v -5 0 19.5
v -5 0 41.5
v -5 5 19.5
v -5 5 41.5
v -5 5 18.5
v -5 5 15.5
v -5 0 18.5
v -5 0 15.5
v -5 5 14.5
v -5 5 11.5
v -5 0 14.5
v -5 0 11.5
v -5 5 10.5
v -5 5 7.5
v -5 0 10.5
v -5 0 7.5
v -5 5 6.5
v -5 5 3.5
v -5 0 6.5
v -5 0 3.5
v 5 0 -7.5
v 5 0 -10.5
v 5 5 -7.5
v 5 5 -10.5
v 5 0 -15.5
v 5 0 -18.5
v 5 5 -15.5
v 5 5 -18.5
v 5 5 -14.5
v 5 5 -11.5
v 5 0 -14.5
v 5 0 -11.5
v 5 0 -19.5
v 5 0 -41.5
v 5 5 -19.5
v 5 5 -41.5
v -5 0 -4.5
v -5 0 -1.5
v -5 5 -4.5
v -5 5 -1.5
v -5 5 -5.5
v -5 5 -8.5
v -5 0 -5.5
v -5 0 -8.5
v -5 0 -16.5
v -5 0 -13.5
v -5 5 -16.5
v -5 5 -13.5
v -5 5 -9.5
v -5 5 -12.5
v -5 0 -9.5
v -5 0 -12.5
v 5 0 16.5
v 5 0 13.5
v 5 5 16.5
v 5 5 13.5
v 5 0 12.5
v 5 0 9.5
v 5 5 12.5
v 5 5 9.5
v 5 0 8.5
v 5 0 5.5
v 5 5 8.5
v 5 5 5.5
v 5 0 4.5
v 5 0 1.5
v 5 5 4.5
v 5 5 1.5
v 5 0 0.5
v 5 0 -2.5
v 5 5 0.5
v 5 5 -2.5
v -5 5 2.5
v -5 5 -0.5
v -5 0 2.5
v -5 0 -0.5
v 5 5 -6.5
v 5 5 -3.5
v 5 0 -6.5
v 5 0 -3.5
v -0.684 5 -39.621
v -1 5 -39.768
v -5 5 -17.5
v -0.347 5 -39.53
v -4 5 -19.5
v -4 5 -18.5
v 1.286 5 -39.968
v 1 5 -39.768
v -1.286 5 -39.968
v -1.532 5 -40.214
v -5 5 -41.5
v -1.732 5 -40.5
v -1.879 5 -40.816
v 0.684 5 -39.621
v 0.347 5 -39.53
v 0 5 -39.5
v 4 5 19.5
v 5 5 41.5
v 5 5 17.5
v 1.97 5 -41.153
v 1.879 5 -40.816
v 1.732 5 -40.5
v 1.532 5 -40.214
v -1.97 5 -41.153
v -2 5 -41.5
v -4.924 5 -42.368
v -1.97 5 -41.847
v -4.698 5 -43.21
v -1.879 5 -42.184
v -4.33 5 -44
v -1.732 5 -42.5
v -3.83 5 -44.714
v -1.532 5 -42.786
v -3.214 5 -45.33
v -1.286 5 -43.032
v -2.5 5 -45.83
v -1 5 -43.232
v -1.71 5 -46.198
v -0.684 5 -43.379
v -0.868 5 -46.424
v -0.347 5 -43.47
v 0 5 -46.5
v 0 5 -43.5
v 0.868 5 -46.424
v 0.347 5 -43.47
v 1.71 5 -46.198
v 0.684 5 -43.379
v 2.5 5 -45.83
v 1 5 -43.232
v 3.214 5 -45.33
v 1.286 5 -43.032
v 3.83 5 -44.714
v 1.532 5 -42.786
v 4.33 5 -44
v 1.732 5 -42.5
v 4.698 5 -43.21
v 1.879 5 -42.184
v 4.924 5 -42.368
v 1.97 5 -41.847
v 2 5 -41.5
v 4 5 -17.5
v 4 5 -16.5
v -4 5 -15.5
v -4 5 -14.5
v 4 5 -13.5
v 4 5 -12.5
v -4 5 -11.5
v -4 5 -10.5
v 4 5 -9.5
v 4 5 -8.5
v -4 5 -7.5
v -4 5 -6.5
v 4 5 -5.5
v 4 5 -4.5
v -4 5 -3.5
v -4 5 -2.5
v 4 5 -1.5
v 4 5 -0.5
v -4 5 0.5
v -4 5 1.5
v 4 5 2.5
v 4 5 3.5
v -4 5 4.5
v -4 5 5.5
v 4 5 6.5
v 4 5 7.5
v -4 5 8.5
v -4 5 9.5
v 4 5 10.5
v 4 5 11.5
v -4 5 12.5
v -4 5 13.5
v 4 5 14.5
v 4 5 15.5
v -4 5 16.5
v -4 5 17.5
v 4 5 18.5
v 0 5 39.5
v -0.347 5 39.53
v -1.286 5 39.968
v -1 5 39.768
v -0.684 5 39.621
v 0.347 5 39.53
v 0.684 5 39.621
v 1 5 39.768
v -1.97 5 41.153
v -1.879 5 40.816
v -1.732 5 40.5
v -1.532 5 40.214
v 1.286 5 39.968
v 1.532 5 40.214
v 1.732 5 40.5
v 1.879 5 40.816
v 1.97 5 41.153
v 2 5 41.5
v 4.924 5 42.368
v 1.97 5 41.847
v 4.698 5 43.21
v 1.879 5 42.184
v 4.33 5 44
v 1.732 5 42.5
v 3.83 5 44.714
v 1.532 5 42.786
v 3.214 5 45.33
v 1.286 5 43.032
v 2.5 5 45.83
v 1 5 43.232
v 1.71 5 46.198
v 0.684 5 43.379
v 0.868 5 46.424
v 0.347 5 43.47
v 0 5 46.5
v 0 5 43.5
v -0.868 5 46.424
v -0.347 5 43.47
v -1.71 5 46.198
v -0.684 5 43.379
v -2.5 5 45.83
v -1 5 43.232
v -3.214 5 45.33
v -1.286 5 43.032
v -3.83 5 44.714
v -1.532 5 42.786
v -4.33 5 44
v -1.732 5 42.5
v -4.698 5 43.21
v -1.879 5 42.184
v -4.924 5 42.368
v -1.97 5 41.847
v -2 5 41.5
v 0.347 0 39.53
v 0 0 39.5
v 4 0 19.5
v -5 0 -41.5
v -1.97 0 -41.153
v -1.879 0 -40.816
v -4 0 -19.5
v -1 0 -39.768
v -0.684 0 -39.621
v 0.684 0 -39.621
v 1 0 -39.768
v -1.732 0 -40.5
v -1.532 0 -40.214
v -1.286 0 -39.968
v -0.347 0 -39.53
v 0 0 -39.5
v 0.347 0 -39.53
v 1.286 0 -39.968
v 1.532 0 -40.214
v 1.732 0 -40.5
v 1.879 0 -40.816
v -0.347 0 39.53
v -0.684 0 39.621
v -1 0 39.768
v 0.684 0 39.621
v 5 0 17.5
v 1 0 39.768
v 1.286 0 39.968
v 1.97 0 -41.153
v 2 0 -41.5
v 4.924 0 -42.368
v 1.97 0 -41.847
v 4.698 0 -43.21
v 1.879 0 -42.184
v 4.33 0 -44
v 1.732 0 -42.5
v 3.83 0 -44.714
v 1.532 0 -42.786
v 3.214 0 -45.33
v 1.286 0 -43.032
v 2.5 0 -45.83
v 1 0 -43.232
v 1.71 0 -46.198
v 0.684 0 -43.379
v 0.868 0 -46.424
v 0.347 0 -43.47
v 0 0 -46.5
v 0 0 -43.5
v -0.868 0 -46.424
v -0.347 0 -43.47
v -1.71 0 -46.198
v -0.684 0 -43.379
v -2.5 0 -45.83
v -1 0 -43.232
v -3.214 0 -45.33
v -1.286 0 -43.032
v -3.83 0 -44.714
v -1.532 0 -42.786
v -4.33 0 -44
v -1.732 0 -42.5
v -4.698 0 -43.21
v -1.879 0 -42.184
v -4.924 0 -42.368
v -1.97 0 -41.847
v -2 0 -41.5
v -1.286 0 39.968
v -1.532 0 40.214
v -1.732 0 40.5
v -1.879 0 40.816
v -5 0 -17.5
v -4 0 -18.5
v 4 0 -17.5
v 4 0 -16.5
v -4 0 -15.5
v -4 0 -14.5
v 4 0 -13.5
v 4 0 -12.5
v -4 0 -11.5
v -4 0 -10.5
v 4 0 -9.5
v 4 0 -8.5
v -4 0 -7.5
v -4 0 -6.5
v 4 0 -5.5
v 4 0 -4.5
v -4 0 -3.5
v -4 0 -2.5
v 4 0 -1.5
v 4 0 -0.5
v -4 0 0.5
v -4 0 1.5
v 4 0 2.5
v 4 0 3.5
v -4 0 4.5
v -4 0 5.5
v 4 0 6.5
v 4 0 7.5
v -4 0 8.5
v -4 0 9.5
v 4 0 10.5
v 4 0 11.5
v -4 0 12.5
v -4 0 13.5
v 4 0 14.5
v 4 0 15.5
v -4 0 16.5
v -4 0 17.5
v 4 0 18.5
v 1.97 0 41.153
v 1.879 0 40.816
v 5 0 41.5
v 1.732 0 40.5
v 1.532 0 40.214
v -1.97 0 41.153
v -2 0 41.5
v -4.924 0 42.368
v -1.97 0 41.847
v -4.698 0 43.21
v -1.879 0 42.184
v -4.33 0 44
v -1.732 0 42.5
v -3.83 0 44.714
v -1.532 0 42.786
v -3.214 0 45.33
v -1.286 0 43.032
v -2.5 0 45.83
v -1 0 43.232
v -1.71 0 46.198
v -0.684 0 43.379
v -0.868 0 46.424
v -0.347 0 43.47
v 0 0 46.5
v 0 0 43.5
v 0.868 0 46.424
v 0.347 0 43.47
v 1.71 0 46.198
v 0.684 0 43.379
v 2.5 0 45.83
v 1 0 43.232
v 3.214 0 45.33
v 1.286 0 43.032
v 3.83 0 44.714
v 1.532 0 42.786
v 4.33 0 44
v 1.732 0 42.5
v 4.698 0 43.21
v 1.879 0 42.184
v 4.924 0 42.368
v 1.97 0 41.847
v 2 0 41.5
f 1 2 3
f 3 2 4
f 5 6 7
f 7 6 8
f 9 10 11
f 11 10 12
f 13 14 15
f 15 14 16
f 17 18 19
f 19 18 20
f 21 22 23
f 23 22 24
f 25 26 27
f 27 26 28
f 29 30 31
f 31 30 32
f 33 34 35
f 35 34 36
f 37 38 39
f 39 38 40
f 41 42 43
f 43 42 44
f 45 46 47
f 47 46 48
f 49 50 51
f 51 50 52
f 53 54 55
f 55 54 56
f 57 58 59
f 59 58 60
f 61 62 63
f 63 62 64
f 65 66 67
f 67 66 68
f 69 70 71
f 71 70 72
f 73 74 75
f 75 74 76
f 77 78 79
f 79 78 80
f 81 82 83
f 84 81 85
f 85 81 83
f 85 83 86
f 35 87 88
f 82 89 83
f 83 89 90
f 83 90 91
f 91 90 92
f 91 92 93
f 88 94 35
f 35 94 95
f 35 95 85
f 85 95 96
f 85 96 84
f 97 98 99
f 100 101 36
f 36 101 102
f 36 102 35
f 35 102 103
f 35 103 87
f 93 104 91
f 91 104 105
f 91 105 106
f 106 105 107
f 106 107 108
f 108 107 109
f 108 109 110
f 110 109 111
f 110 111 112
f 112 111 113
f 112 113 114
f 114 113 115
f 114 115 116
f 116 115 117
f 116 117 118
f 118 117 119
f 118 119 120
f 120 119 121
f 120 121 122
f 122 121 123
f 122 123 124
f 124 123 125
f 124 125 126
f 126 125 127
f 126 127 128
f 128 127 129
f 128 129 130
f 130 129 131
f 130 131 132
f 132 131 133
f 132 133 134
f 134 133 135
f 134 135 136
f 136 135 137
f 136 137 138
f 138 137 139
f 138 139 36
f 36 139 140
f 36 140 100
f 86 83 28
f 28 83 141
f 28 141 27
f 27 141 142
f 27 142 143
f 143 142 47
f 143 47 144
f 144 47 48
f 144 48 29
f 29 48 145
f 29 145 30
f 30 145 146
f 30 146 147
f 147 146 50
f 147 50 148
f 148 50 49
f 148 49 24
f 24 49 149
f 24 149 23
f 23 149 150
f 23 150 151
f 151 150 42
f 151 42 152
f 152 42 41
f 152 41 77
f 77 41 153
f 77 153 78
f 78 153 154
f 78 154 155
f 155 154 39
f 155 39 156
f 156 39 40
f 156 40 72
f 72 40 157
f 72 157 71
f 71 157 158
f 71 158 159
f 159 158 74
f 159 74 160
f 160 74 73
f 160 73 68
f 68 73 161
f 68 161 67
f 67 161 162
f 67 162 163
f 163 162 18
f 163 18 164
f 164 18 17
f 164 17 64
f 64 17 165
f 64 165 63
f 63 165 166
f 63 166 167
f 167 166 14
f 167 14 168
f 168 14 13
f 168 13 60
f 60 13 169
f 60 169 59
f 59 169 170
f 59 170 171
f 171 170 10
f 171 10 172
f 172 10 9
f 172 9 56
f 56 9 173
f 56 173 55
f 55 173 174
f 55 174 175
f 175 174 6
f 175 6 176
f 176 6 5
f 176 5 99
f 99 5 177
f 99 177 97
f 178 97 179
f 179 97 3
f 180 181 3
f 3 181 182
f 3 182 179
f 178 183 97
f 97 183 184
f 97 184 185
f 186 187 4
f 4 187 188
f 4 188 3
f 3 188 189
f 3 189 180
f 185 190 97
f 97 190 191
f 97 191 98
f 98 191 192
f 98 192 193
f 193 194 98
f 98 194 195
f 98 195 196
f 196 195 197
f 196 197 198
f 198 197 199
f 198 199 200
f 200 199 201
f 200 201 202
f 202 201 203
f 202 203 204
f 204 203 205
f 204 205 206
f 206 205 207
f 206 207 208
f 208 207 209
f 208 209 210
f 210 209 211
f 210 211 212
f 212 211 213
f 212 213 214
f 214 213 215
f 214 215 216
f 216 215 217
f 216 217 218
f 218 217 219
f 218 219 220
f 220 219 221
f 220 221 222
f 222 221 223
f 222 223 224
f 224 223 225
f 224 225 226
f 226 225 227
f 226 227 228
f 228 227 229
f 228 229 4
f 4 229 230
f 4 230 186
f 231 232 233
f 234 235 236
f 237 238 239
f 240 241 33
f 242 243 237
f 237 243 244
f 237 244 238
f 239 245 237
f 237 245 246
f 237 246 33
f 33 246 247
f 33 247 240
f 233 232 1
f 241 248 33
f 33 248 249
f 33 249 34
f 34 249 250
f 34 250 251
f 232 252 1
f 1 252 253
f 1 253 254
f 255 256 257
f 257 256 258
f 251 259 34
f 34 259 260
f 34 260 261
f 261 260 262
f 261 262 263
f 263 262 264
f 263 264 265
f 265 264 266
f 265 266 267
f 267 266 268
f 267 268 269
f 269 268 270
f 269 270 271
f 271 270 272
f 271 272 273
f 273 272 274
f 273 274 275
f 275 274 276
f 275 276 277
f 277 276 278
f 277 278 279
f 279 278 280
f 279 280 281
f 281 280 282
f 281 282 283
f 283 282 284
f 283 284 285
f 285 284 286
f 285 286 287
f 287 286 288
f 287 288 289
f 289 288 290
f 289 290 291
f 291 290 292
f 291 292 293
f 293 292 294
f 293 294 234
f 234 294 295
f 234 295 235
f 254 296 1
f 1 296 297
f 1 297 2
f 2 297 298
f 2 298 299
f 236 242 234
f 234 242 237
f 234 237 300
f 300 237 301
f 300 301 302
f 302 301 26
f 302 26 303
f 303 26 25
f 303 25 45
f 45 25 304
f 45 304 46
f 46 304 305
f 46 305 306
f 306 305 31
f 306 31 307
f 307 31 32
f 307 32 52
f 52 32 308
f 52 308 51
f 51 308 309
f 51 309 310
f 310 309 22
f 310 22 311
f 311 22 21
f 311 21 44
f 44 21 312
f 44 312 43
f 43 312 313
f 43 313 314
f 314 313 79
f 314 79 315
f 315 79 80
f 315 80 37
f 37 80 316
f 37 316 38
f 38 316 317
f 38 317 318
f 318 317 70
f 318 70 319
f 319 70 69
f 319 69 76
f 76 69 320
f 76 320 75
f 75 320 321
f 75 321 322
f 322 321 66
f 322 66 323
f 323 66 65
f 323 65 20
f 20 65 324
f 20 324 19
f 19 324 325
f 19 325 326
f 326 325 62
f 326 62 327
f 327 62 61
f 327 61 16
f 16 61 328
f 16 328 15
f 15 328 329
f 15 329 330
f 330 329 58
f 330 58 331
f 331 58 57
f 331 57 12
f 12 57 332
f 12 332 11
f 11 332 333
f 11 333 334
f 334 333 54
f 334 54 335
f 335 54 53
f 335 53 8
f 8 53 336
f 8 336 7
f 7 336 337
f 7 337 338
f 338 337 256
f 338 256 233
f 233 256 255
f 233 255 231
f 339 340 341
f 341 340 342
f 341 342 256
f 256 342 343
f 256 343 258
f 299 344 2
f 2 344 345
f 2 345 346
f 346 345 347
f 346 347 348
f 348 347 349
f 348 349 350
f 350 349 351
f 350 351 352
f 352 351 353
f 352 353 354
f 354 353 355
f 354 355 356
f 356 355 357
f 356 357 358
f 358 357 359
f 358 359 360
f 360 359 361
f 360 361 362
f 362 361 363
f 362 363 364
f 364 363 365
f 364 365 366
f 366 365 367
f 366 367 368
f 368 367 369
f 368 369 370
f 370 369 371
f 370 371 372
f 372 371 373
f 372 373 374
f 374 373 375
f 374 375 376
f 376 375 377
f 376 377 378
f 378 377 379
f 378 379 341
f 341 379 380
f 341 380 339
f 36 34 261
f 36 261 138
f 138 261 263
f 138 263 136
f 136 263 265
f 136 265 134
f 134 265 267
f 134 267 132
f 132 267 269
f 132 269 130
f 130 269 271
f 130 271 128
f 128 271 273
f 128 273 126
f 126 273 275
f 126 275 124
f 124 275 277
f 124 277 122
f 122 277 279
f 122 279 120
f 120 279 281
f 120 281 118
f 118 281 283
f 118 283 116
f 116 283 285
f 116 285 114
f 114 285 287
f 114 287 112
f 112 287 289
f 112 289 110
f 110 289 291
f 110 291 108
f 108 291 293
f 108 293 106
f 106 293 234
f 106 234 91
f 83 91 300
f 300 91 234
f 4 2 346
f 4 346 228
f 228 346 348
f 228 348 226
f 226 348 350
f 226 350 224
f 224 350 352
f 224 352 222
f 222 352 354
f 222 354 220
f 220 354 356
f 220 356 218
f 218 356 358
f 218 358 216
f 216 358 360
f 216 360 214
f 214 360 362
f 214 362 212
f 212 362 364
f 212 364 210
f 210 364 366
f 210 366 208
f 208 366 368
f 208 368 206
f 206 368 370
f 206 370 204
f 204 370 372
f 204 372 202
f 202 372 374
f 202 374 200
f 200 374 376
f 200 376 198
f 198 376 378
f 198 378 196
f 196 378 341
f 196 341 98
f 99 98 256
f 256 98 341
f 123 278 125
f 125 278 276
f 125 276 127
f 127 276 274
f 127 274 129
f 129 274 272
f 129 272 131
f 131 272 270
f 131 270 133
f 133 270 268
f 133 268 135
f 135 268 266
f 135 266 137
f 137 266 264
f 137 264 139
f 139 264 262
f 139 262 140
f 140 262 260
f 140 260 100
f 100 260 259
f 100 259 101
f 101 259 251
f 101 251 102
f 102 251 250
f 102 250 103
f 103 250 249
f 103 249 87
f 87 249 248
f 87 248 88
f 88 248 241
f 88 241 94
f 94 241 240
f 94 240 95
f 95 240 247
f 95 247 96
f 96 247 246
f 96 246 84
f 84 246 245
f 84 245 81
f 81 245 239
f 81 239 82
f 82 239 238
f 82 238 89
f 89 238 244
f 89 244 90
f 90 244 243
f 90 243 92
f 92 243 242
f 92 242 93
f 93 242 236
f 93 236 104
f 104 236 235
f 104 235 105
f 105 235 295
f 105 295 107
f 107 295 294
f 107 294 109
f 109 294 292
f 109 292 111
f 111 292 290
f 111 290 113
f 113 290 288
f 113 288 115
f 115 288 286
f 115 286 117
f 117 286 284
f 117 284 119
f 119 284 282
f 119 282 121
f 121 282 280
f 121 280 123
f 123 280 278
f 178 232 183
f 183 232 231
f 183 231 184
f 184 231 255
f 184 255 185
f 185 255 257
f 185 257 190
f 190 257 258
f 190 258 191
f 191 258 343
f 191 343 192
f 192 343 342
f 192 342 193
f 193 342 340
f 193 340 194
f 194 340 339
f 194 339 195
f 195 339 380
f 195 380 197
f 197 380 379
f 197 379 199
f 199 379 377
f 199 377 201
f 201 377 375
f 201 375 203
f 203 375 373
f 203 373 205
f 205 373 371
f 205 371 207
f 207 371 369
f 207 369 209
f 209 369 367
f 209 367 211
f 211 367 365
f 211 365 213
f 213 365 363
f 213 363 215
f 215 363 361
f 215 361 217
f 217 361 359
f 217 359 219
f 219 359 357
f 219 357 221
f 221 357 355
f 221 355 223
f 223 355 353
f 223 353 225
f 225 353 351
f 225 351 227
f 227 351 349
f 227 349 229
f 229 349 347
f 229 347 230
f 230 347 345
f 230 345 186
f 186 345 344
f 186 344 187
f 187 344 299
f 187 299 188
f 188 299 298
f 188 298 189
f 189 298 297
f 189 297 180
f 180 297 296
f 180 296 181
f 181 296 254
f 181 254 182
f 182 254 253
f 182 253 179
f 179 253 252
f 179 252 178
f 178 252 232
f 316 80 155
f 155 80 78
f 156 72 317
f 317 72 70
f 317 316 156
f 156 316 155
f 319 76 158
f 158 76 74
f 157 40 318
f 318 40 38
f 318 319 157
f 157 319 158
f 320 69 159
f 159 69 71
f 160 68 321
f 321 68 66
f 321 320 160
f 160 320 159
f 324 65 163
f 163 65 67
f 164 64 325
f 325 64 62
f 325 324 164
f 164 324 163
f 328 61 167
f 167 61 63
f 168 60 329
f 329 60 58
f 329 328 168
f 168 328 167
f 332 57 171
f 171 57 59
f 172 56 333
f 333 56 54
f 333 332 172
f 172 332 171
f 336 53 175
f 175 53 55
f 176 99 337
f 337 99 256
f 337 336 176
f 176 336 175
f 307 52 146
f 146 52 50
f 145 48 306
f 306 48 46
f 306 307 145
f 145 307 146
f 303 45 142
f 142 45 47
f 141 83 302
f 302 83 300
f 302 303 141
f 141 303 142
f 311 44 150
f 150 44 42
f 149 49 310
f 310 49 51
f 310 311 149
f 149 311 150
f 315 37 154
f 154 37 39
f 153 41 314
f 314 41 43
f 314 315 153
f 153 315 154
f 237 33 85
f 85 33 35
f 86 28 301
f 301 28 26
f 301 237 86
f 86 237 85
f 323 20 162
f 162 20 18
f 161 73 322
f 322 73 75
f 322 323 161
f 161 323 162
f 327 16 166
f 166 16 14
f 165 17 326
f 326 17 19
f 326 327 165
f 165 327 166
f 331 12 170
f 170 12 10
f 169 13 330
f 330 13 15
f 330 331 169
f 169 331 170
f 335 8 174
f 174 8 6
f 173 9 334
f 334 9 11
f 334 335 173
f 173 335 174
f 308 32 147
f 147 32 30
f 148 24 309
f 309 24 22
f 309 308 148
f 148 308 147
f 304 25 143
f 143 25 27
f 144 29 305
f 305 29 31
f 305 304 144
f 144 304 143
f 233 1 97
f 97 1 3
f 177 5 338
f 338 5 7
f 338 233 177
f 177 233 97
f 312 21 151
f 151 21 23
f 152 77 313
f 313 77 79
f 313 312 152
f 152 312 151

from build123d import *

# Parameters (mm, degrees)
SKETCH1_R           = 2
BOSS_EXTRUDE1_DEPTH = 5
SKETCH2_W           = 18
SKETCH2_H           = 1
CUT_EXTRUDE1_DEPTH  = 6
LPATTERN1_COUNT     = 5
LPATTERN1_PITCH     = 4
LPATTERN1_COL_COUNT = 6
LPATTERN1_COL_PITCH = 4


with BuildPart() as part:
    # Sketch1 → Boss-Extrude1 (new body)
    with BuildSketch(Plane(origin=(0, 0, 0), x_dir=(1, 0, 0), z_dir=(0, 1, 0))):
        with BuildLine():
            Line((5, 41.5), (5, -41.5))
            ThreePointArc((5, -41.5), (0, -46.5), (-5, -41.5))
            Line((-5, -41.5), (-5, 41.5))
            ThreePointArc((-5, 41.5), (0, 46.5), (5, 41.5))
        make_face()
        with Locations((0, 41.5)):
            Circle(SKETCH1_R, mode=Mode.SUBTRACT)
        with Locations((0, -41.5)):
            Circle(SKETCH1_R, mode=Mode.SUBTRACT)
    extrude(amount=BOSS_EXTRUDE1_DEPTH)

    # Sketch2 → Cut-Extrude1 (cut, through all)
    with BuildSketch(Plane(origin=(0, 5, 0), x_dir=(1, 0, 0), z_dir=(0, 1, 0))):
        with Locations((5, 3)):
            Rectangle(SKETCH2_W, SKETCH2_H)
        with Locations((-5, 1)):
            Rectangle(SKETCH2_W, SKETCH2_H)
    cut_extrude1 = extrude(amount=-CUT_EXTRUDE1_DEPTH, mode=Mode.SUBTRACT)

    # LPattern1: Cut-Extrude1 ×5
    with Locations(*[(0, 0, -i * LPATTERN1_PITCH) for i in range(1, LPATTERN1_COUNT)]):
        add(cut_extrude1, mode=Mode.SUBTRACT)

    # LPattern1 col: Cut-Extrude1 ×6
    with Locations(*[(0, 0, i * LPATTERN1_COL_PITCH) for i in range(1, LPATTERN1_COL_COUNT)]):
        add(cut_extrude1, mode=Mode.SUBTRACT)


solid = part.part
